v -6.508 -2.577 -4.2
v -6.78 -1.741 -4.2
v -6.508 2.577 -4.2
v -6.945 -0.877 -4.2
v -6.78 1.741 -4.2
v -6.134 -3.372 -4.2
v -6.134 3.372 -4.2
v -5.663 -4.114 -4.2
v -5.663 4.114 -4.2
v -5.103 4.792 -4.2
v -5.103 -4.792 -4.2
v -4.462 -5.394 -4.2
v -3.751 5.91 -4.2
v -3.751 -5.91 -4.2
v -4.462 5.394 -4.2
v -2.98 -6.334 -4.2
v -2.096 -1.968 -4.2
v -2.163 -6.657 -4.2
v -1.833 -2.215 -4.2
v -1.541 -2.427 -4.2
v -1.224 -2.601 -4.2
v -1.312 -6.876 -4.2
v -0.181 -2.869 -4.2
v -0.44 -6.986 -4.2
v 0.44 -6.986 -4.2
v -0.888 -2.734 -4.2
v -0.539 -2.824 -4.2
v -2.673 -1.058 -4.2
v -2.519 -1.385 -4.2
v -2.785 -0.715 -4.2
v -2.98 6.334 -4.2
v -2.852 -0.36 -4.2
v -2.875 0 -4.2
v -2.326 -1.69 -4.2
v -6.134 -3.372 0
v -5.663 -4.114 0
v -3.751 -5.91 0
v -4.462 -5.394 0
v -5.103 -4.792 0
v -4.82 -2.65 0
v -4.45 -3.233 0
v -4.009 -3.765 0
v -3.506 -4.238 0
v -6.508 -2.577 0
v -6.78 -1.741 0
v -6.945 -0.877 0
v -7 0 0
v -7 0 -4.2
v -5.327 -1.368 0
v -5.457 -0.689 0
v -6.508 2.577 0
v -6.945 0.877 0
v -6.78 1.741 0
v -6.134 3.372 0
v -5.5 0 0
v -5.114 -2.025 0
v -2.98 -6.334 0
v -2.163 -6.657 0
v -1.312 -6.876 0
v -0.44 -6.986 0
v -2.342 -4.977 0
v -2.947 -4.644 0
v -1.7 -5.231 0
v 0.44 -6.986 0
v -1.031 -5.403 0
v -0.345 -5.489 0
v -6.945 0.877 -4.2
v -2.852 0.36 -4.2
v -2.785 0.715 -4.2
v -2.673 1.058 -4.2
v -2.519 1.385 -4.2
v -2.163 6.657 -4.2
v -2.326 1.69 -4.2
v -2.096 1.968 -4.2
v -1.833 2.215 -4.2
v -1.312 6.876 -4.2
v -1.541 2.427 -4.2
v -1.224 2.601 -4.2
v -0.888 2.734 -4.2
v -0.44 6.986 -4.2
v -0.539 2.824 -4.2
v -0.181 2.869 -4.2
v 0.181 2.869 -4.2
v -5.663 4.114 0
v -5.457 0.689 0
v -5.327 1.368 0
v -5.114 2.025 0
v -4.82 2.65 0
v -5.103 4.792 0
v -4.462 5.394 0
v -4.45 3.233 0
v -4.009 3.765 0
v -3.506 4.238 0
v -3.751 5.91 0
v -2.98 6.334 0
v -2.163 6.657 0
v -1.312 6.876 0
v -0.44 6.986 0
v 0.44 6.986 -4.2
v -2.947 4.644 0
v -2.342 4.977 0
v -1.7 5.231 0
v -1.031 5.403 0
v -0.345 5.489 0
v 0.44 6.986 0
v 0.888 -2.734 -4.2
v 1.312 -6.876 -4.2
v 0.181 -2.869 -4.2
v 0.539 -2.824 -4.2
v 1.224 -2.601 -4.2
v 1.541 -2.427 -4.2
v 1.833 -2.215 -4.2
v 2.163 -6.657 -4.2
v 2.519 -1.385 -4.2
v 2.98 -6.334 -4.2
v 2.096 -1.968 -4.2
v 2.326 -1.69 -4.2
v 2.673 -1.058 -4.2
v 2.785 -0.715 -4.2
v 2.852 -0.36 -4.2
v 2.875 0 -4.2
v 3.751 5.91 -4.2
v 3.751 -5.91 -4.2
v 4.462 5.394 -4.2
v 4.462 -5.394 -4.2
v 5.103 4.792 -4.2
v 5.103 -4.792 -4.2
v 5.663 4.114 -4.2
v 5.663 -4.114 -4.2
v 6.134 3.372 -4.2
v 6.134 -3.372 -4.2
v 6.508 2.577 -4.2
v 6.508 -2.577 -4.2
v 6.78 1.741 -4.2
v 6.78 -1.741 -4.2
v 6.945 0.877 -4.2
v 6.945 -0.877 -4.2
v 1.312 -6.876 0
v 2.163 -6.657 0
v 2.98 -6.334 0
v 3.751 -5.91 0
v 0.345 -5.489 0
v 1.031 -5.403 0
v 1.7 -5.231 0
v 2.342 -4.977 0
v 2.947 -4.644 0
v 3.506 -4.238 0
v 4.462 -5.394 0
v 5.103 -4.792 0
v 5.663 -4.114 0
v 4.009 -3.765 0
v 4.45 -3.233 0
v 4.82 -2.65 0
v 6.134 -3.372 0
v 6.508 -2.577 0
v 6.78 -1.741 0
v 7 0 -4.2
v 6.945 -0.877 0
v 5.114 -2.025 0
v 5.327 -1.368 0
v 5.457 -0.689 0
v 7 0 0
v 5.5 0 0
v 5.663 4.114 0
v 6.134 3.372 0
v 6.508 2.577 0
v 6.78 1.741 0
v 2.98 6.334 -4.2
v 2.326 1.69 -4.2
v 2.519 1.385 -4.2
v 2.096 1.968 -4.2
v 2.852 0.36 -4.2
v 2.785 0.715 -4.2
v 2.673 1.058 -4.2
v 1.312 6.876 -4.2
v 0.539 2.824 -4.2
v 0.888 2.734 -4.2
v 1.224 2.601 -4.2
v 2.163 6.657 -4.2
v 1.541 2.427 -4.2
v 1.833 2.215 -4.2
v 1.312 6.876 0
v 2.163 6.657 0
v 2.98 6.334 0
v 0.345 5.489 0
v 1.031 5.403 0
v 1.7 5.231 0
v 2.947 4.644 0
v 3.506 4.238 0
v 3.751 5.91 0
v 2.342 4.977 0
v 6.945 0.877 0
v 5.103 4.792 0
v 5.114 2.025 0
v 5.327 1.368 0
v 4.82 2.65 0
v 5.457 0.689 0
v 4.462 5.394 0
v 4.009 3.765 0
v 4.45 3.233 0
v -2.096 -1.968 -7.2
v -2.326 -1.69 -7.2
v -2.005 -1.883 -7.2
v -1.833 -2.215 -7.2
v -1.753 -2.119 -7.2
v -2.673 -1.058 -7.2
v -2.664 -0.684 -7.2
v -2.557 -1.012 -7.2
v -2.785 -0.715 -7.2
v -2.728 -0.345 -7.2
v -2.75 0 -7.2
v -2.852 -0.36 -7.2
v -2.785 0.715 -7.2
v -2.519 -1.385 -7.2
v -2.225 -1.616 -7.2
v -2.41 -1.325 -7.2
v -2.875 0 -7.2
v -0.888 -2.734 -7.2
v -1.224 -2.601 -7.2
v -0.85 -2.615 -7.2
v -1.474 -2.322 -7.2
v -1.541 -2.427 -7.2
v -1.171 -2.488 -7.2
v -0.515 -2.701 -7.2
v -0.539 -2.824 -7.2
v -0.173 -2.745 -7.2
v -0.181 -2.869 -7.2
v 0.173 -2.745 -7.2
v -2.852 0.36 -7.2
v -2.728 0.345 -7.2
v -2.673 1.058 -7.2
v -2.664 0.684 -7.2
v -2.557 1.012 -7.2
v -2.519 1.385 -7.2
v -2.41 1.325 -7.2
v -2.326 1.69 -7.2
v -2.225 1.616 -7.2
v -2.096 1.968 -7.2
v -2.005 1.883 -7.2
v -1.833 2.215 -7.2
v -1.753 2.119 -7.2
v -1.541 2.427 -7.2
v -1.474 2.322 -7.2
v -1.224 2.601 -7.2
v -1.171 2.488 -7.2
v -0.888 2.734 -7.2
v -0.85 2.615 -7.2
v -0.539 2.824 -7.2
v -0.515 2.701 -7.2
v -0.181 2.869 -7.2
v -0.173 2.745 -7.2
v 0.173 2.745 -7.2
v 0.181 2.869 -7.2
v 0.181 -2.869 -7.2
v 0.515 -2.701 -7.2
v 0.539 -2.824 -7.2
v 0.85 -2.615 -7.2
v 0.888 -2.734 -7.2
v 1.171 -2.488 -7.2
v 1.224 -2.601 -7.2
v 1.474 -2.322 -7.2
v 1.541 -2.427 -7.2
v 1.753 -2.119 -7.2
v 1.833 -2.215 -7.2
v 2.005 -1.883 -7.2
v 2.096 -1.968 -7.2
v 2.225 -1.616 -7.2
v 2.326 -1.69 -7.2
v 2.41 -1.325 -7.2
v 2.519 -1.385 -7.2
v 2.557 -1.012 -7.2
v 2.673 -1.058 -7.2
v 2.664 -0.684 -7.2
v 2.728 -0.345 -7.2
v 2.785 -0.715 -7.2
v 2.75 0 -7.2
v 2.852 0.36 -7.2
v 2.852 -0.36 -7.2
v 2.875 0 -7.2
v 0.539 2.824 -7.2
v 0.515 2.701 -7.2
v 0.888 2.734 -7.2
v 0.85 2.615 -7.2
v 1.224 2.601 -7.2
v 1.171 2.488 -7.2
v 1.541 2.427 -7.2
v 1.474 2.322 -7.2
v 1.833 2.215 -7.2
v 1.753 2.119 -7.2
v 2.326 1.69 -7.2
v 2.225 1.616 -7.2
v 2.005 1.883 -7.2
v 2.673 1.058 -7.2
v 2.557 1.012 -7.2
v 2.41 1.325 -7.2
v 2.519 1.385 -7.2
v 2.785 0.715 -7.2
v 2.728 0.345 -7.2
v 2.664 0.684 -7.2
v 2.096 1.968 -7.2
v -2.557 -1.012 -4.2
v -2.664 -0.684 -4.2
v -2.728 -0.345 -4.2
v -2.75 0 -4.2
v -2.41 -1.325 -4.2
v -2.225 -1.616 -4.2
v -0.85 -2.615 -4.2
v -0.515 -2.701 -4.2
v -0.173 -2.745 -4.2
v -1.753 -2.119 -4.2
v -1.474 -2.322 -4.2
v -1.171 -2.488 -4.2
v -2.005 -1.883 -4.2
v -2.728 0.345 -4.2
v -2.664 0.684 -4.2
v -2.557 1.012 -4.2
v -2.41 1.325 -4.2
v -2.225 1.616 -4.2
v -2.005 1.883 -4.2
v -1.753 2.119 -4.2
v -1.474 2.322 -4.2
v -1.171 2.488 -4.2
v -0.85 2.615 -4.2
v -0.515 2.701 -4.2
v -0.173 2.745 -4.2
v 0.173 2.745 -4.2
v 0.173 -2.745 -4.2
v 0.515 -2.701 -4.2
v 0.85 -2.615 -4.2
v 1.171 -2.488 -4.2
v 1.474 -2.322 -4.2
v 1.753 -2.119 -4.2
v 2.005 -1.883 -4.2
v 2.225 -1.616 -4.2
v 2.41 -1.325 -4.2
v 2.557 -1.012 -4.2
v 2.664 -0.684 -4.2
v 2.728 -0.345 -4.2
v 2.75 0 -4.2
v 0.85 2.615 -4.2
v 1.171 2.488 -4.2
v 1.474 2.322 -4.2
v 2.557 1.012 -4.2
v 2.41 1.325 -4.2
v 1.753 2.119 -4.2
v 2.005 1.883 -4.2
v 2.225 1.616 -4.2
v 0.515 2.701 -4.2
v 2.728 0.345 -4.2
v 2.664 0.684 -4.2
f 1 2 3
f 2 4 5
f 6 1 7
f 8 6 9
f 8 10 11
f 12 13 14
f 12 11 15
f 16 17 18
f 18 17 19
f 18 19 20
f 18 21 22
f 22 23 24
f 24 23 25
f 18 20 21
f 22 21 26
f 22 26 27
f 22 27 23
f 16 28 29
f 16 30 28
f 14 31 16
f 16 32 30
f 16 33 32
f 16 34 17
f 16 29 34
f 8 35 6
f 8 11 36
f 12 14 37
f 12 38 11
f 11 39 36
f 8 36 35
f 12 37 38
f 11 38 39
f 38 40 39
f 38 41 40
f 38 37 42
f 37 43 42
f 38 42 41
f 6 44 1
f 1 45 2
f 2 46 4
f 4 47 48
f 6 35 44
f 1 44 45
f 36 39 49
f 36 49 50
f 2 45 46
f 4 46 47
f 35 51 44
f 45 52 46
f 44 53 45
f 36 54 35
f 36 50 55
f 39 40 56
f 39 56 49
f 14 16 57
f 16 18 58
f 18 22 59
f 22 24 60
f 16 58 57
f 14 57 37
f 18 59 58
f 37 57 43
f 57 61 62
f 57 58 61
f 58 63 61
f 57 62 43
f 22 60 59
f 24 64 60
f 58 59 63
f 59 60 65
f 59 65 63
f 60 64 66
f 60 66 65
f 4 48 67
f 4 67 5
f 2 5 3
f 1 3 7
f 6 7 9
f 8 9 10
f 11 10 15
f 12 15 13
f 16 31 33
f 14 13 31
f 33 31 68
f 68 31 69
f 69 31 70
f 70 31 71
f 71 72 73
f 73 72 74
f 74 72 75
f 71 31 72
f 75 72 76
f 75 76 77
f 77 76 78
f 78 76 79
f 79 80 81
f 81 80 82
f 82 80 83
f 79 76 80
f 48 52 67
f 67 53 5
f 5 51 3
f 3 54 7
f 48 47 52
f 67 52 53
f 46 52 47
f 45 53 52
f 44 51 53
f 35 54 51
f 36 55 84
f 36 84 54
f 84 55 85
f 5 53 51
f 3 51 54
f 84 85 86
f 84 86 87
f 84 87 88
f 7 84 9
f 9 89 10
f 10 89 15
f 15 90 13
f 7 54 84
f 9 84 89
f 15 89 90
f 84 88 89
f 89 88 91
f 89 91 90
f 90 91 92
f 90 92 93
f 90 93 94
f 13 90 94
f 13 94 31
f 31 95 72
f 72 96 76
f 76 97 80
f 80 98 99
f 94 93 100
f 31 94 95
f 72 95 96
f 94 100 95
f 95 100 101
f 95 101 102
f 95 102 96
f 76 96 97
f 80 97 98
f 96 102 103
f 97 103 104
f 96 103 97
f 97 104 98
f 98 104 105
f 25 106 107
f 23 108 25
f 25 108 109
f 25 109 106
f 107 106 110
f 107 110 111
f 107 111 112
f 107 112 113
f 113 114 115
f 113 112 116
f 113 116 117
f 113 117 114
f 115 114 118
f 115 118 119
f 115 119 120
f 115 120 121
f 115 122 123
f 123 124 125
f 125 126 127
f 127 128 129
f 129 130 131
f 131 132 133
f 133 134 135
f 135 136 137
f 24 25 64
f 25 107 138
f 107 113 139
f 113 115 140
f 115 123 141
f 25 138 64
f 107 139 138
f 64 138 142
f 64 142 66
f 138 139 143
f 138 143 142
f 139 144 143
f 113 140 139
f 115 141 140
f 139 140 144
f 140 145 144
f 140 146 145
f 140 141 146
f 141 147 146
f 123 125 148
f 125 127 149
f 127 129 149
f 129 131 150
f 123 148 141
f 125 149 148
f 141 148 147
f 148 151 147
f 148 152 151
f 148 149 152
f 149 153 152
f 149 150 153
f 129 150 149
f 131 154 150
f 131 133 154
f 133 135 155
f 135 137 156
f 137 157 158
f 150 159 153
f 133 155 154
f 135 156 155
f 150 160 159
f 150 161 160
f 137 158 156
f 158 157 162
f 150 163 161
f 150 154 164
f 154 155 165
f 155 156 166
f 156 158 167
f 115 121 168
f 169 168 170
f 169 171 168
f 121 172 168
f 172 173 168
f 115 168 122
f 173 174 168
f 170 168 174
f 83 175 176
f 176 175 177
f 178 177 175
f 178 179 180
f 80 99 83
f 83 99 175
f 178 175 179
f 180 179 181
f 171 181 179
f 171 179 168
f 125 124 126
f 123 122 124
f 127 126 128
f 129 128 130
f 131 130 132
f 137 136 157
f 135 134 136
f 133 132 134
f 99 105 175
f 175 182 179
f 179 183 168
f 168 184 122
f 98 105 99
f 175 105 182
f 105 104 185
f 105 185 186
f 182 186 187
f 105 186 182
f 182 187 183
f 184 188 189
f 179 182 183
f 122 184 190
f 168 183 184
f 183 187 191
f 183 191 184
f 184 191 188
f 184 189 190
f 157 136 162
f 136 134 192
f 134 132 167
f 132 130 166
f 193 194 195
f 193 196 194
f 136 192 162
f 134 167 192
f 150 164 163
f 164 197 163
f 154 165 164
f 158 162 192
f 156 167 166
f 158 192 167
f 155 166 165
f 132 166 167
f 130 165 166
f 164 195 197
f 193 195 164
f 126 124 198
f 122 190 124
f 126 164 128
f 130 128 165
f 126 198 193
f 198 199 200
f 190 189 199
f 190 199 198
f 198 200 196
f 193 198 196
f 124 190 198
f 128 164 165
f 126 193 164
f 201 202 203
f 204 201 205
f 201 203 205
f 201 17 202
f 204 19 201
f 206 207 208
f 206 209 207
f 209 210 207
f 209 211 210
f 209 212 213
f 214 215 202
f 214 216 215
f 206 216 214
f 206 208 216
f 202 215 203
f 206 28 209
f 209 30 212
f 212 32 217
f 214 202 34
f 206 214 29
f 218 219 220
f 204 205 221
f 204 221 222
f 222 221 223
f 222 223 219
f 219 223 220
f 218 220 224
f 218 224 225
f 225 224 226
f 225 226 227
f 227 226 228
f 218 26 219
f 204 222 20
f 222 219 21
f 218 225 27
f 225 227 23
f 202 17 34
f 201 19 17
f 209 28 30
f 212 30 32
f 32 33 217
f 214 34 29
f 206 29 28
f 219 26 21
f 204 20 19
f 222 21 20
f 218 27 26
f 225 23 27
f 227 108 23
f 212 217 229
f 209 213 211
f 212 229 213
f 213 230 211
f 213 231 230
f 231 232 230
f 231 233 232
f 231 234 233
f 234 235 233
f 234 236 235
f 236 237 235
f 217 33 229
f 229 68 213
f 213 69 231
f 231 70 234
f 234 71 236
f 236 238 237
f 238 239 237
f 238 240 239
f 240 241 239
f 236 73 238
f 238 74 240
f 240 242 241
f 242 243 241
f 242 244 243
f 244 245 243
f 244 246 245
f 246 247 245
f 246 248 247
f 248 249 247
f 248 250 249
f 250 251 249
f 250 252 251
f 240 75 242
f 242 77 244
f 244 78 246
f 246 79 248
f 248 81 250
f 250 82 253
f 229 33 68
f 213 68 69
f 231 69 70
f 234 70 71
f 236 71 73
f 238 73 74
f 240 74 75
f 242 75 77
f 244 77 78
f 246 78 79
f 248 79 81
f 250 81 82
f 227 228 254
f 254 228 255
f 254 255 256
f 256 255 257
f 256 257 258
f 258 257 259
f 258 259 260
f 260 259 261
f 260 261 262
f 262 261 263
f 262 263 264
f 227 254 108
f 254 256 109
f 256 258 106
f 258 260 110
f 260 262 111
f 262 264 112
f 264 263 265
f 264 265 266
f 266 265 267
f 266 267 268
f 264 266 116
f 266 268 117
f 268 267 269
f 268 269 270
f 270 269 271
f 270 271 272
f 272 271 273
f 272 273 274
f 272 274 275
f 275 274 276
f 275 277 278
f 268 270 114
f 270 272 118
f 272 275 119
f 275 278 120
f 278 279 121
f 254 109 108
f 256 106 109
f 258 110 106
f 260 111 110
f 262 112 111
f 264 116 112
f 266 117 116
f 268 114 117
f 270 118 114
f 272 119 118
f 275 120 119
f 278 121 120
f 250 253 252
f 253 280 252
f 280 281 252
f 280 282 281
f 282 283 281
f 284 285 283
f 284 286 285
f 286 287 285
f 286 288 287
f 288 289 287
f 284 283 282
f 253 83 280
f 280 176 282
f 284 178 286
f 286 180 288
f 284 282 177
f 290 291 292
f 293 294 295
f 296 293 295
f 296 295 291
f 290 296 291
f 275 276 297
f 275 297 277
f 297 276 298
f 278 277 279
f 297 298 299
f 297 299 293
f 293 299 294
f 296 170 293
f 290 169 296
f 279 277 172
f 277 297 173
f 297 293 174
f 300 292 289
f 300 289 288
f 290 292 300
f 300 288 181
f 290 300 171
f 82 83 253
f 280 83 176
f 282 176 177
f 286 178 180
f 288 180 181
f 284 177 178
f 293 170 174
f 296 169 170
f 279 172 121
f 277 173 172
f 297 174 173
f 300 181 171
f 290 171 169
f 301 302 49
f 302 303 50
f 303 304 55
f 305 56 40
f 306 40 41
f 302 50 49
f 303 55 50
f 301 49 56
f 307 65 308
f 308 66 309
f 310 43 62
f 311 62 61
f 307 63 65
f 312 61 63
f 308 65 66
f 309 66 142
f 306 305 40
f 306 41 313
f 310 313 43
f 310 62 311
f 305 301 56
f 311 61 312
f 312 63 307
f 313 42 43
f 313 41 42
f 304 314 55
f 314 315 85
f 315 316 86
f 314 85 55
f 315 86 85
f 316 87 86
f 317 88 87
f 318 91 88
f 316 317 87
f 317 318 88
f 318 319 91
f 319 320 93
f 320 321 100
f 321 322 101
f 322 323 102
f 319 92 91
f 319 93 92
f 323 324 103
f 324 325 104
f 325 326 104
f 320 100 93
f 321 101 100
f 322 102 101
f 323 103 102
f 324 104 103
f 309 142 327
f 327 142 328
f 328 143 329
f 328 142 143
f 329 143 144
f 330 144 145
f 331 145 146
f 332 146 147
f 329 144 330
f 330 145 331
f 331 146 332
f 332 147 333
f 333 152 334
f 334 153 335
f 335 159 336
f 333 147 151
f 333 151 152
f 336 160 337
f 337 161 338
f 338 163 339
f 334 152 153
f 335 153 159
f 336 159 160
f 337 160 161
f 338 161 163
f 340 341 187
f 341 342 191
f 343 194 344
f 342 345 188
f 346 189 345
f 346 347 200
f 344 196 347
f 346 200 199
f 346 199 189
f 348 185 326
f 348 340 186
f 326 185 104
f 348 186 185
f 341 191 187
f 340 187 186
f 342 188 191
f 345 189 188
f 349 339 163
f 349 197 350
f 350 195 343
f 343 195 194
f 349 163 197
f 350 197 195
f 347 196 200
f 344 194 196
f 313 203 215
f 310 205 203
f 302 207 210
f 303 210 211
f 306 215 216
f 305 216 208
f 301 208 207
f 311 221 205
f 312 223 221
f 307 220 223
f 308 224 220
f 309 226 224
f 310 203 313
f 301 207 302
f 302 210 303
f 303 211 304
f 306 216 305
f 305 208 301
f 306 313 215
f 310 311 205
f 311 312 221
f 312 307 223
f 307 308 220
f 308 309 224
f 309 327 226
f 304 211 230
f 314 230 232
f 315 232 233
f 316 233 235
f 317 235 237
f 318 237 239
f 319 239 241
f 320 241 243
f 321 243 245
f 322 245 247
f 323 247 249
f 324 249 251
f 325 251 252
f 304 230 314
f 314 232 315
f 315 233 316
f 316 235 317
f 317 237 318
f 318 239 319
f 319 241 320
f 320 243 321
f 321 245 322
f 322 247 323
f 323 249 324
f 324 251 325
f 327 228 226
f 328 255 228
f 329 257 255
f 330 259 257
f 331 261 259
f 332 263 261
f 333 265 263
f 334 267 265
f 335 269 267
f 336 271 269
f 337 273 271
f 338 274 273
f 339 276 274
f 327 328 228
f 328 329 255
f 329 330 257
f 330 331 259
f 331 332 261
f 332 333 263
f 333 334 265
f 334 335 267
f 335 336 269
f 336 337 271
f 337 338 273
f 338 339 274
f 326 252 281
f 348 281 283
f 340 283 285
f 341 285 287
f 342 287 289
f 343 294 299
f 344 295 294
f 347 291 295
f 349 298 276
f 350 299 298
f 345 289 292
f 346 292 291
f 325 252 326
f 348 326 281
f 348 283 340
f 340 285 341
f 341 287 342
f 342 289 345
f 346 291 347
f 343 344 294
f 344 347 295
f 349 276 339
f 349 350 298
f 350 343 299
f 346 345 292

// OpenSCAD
$fn = 50;

difference() {
	union() {
		translate(v = [0, 0, -4.2]) {
			cylinder(h = 4.2, r = 7.0);
		}
		#translate(v = [0, 0, -7.2]) {
			cylinder(h = 7.2, r = 2.875);
		}
	}
	union() {
		translate(v = [0, 0, 0]) {
			rotate(a = [0, 0, 0]) {
				difference() {
					union() {
						translate(v = [0, 0, -7.2]) {
							cylinder(h = 7.2, r = 2.25);
						}
						translate(v = [0, 0, -4.2]) {
							cylinder(h = 4.2, r1 = 2.75, r2 = 5.5);
						}
						translate(v = [0, 0, -7.2]) {
							cylinder(h = 7.2, r = 2.75);
						}
						translate(v = [0, 0, -7.2]) {
							cylinder(h = 7.2, r = 2.25);
						}
					}
					union();
				}
			}
		}
	}
}
